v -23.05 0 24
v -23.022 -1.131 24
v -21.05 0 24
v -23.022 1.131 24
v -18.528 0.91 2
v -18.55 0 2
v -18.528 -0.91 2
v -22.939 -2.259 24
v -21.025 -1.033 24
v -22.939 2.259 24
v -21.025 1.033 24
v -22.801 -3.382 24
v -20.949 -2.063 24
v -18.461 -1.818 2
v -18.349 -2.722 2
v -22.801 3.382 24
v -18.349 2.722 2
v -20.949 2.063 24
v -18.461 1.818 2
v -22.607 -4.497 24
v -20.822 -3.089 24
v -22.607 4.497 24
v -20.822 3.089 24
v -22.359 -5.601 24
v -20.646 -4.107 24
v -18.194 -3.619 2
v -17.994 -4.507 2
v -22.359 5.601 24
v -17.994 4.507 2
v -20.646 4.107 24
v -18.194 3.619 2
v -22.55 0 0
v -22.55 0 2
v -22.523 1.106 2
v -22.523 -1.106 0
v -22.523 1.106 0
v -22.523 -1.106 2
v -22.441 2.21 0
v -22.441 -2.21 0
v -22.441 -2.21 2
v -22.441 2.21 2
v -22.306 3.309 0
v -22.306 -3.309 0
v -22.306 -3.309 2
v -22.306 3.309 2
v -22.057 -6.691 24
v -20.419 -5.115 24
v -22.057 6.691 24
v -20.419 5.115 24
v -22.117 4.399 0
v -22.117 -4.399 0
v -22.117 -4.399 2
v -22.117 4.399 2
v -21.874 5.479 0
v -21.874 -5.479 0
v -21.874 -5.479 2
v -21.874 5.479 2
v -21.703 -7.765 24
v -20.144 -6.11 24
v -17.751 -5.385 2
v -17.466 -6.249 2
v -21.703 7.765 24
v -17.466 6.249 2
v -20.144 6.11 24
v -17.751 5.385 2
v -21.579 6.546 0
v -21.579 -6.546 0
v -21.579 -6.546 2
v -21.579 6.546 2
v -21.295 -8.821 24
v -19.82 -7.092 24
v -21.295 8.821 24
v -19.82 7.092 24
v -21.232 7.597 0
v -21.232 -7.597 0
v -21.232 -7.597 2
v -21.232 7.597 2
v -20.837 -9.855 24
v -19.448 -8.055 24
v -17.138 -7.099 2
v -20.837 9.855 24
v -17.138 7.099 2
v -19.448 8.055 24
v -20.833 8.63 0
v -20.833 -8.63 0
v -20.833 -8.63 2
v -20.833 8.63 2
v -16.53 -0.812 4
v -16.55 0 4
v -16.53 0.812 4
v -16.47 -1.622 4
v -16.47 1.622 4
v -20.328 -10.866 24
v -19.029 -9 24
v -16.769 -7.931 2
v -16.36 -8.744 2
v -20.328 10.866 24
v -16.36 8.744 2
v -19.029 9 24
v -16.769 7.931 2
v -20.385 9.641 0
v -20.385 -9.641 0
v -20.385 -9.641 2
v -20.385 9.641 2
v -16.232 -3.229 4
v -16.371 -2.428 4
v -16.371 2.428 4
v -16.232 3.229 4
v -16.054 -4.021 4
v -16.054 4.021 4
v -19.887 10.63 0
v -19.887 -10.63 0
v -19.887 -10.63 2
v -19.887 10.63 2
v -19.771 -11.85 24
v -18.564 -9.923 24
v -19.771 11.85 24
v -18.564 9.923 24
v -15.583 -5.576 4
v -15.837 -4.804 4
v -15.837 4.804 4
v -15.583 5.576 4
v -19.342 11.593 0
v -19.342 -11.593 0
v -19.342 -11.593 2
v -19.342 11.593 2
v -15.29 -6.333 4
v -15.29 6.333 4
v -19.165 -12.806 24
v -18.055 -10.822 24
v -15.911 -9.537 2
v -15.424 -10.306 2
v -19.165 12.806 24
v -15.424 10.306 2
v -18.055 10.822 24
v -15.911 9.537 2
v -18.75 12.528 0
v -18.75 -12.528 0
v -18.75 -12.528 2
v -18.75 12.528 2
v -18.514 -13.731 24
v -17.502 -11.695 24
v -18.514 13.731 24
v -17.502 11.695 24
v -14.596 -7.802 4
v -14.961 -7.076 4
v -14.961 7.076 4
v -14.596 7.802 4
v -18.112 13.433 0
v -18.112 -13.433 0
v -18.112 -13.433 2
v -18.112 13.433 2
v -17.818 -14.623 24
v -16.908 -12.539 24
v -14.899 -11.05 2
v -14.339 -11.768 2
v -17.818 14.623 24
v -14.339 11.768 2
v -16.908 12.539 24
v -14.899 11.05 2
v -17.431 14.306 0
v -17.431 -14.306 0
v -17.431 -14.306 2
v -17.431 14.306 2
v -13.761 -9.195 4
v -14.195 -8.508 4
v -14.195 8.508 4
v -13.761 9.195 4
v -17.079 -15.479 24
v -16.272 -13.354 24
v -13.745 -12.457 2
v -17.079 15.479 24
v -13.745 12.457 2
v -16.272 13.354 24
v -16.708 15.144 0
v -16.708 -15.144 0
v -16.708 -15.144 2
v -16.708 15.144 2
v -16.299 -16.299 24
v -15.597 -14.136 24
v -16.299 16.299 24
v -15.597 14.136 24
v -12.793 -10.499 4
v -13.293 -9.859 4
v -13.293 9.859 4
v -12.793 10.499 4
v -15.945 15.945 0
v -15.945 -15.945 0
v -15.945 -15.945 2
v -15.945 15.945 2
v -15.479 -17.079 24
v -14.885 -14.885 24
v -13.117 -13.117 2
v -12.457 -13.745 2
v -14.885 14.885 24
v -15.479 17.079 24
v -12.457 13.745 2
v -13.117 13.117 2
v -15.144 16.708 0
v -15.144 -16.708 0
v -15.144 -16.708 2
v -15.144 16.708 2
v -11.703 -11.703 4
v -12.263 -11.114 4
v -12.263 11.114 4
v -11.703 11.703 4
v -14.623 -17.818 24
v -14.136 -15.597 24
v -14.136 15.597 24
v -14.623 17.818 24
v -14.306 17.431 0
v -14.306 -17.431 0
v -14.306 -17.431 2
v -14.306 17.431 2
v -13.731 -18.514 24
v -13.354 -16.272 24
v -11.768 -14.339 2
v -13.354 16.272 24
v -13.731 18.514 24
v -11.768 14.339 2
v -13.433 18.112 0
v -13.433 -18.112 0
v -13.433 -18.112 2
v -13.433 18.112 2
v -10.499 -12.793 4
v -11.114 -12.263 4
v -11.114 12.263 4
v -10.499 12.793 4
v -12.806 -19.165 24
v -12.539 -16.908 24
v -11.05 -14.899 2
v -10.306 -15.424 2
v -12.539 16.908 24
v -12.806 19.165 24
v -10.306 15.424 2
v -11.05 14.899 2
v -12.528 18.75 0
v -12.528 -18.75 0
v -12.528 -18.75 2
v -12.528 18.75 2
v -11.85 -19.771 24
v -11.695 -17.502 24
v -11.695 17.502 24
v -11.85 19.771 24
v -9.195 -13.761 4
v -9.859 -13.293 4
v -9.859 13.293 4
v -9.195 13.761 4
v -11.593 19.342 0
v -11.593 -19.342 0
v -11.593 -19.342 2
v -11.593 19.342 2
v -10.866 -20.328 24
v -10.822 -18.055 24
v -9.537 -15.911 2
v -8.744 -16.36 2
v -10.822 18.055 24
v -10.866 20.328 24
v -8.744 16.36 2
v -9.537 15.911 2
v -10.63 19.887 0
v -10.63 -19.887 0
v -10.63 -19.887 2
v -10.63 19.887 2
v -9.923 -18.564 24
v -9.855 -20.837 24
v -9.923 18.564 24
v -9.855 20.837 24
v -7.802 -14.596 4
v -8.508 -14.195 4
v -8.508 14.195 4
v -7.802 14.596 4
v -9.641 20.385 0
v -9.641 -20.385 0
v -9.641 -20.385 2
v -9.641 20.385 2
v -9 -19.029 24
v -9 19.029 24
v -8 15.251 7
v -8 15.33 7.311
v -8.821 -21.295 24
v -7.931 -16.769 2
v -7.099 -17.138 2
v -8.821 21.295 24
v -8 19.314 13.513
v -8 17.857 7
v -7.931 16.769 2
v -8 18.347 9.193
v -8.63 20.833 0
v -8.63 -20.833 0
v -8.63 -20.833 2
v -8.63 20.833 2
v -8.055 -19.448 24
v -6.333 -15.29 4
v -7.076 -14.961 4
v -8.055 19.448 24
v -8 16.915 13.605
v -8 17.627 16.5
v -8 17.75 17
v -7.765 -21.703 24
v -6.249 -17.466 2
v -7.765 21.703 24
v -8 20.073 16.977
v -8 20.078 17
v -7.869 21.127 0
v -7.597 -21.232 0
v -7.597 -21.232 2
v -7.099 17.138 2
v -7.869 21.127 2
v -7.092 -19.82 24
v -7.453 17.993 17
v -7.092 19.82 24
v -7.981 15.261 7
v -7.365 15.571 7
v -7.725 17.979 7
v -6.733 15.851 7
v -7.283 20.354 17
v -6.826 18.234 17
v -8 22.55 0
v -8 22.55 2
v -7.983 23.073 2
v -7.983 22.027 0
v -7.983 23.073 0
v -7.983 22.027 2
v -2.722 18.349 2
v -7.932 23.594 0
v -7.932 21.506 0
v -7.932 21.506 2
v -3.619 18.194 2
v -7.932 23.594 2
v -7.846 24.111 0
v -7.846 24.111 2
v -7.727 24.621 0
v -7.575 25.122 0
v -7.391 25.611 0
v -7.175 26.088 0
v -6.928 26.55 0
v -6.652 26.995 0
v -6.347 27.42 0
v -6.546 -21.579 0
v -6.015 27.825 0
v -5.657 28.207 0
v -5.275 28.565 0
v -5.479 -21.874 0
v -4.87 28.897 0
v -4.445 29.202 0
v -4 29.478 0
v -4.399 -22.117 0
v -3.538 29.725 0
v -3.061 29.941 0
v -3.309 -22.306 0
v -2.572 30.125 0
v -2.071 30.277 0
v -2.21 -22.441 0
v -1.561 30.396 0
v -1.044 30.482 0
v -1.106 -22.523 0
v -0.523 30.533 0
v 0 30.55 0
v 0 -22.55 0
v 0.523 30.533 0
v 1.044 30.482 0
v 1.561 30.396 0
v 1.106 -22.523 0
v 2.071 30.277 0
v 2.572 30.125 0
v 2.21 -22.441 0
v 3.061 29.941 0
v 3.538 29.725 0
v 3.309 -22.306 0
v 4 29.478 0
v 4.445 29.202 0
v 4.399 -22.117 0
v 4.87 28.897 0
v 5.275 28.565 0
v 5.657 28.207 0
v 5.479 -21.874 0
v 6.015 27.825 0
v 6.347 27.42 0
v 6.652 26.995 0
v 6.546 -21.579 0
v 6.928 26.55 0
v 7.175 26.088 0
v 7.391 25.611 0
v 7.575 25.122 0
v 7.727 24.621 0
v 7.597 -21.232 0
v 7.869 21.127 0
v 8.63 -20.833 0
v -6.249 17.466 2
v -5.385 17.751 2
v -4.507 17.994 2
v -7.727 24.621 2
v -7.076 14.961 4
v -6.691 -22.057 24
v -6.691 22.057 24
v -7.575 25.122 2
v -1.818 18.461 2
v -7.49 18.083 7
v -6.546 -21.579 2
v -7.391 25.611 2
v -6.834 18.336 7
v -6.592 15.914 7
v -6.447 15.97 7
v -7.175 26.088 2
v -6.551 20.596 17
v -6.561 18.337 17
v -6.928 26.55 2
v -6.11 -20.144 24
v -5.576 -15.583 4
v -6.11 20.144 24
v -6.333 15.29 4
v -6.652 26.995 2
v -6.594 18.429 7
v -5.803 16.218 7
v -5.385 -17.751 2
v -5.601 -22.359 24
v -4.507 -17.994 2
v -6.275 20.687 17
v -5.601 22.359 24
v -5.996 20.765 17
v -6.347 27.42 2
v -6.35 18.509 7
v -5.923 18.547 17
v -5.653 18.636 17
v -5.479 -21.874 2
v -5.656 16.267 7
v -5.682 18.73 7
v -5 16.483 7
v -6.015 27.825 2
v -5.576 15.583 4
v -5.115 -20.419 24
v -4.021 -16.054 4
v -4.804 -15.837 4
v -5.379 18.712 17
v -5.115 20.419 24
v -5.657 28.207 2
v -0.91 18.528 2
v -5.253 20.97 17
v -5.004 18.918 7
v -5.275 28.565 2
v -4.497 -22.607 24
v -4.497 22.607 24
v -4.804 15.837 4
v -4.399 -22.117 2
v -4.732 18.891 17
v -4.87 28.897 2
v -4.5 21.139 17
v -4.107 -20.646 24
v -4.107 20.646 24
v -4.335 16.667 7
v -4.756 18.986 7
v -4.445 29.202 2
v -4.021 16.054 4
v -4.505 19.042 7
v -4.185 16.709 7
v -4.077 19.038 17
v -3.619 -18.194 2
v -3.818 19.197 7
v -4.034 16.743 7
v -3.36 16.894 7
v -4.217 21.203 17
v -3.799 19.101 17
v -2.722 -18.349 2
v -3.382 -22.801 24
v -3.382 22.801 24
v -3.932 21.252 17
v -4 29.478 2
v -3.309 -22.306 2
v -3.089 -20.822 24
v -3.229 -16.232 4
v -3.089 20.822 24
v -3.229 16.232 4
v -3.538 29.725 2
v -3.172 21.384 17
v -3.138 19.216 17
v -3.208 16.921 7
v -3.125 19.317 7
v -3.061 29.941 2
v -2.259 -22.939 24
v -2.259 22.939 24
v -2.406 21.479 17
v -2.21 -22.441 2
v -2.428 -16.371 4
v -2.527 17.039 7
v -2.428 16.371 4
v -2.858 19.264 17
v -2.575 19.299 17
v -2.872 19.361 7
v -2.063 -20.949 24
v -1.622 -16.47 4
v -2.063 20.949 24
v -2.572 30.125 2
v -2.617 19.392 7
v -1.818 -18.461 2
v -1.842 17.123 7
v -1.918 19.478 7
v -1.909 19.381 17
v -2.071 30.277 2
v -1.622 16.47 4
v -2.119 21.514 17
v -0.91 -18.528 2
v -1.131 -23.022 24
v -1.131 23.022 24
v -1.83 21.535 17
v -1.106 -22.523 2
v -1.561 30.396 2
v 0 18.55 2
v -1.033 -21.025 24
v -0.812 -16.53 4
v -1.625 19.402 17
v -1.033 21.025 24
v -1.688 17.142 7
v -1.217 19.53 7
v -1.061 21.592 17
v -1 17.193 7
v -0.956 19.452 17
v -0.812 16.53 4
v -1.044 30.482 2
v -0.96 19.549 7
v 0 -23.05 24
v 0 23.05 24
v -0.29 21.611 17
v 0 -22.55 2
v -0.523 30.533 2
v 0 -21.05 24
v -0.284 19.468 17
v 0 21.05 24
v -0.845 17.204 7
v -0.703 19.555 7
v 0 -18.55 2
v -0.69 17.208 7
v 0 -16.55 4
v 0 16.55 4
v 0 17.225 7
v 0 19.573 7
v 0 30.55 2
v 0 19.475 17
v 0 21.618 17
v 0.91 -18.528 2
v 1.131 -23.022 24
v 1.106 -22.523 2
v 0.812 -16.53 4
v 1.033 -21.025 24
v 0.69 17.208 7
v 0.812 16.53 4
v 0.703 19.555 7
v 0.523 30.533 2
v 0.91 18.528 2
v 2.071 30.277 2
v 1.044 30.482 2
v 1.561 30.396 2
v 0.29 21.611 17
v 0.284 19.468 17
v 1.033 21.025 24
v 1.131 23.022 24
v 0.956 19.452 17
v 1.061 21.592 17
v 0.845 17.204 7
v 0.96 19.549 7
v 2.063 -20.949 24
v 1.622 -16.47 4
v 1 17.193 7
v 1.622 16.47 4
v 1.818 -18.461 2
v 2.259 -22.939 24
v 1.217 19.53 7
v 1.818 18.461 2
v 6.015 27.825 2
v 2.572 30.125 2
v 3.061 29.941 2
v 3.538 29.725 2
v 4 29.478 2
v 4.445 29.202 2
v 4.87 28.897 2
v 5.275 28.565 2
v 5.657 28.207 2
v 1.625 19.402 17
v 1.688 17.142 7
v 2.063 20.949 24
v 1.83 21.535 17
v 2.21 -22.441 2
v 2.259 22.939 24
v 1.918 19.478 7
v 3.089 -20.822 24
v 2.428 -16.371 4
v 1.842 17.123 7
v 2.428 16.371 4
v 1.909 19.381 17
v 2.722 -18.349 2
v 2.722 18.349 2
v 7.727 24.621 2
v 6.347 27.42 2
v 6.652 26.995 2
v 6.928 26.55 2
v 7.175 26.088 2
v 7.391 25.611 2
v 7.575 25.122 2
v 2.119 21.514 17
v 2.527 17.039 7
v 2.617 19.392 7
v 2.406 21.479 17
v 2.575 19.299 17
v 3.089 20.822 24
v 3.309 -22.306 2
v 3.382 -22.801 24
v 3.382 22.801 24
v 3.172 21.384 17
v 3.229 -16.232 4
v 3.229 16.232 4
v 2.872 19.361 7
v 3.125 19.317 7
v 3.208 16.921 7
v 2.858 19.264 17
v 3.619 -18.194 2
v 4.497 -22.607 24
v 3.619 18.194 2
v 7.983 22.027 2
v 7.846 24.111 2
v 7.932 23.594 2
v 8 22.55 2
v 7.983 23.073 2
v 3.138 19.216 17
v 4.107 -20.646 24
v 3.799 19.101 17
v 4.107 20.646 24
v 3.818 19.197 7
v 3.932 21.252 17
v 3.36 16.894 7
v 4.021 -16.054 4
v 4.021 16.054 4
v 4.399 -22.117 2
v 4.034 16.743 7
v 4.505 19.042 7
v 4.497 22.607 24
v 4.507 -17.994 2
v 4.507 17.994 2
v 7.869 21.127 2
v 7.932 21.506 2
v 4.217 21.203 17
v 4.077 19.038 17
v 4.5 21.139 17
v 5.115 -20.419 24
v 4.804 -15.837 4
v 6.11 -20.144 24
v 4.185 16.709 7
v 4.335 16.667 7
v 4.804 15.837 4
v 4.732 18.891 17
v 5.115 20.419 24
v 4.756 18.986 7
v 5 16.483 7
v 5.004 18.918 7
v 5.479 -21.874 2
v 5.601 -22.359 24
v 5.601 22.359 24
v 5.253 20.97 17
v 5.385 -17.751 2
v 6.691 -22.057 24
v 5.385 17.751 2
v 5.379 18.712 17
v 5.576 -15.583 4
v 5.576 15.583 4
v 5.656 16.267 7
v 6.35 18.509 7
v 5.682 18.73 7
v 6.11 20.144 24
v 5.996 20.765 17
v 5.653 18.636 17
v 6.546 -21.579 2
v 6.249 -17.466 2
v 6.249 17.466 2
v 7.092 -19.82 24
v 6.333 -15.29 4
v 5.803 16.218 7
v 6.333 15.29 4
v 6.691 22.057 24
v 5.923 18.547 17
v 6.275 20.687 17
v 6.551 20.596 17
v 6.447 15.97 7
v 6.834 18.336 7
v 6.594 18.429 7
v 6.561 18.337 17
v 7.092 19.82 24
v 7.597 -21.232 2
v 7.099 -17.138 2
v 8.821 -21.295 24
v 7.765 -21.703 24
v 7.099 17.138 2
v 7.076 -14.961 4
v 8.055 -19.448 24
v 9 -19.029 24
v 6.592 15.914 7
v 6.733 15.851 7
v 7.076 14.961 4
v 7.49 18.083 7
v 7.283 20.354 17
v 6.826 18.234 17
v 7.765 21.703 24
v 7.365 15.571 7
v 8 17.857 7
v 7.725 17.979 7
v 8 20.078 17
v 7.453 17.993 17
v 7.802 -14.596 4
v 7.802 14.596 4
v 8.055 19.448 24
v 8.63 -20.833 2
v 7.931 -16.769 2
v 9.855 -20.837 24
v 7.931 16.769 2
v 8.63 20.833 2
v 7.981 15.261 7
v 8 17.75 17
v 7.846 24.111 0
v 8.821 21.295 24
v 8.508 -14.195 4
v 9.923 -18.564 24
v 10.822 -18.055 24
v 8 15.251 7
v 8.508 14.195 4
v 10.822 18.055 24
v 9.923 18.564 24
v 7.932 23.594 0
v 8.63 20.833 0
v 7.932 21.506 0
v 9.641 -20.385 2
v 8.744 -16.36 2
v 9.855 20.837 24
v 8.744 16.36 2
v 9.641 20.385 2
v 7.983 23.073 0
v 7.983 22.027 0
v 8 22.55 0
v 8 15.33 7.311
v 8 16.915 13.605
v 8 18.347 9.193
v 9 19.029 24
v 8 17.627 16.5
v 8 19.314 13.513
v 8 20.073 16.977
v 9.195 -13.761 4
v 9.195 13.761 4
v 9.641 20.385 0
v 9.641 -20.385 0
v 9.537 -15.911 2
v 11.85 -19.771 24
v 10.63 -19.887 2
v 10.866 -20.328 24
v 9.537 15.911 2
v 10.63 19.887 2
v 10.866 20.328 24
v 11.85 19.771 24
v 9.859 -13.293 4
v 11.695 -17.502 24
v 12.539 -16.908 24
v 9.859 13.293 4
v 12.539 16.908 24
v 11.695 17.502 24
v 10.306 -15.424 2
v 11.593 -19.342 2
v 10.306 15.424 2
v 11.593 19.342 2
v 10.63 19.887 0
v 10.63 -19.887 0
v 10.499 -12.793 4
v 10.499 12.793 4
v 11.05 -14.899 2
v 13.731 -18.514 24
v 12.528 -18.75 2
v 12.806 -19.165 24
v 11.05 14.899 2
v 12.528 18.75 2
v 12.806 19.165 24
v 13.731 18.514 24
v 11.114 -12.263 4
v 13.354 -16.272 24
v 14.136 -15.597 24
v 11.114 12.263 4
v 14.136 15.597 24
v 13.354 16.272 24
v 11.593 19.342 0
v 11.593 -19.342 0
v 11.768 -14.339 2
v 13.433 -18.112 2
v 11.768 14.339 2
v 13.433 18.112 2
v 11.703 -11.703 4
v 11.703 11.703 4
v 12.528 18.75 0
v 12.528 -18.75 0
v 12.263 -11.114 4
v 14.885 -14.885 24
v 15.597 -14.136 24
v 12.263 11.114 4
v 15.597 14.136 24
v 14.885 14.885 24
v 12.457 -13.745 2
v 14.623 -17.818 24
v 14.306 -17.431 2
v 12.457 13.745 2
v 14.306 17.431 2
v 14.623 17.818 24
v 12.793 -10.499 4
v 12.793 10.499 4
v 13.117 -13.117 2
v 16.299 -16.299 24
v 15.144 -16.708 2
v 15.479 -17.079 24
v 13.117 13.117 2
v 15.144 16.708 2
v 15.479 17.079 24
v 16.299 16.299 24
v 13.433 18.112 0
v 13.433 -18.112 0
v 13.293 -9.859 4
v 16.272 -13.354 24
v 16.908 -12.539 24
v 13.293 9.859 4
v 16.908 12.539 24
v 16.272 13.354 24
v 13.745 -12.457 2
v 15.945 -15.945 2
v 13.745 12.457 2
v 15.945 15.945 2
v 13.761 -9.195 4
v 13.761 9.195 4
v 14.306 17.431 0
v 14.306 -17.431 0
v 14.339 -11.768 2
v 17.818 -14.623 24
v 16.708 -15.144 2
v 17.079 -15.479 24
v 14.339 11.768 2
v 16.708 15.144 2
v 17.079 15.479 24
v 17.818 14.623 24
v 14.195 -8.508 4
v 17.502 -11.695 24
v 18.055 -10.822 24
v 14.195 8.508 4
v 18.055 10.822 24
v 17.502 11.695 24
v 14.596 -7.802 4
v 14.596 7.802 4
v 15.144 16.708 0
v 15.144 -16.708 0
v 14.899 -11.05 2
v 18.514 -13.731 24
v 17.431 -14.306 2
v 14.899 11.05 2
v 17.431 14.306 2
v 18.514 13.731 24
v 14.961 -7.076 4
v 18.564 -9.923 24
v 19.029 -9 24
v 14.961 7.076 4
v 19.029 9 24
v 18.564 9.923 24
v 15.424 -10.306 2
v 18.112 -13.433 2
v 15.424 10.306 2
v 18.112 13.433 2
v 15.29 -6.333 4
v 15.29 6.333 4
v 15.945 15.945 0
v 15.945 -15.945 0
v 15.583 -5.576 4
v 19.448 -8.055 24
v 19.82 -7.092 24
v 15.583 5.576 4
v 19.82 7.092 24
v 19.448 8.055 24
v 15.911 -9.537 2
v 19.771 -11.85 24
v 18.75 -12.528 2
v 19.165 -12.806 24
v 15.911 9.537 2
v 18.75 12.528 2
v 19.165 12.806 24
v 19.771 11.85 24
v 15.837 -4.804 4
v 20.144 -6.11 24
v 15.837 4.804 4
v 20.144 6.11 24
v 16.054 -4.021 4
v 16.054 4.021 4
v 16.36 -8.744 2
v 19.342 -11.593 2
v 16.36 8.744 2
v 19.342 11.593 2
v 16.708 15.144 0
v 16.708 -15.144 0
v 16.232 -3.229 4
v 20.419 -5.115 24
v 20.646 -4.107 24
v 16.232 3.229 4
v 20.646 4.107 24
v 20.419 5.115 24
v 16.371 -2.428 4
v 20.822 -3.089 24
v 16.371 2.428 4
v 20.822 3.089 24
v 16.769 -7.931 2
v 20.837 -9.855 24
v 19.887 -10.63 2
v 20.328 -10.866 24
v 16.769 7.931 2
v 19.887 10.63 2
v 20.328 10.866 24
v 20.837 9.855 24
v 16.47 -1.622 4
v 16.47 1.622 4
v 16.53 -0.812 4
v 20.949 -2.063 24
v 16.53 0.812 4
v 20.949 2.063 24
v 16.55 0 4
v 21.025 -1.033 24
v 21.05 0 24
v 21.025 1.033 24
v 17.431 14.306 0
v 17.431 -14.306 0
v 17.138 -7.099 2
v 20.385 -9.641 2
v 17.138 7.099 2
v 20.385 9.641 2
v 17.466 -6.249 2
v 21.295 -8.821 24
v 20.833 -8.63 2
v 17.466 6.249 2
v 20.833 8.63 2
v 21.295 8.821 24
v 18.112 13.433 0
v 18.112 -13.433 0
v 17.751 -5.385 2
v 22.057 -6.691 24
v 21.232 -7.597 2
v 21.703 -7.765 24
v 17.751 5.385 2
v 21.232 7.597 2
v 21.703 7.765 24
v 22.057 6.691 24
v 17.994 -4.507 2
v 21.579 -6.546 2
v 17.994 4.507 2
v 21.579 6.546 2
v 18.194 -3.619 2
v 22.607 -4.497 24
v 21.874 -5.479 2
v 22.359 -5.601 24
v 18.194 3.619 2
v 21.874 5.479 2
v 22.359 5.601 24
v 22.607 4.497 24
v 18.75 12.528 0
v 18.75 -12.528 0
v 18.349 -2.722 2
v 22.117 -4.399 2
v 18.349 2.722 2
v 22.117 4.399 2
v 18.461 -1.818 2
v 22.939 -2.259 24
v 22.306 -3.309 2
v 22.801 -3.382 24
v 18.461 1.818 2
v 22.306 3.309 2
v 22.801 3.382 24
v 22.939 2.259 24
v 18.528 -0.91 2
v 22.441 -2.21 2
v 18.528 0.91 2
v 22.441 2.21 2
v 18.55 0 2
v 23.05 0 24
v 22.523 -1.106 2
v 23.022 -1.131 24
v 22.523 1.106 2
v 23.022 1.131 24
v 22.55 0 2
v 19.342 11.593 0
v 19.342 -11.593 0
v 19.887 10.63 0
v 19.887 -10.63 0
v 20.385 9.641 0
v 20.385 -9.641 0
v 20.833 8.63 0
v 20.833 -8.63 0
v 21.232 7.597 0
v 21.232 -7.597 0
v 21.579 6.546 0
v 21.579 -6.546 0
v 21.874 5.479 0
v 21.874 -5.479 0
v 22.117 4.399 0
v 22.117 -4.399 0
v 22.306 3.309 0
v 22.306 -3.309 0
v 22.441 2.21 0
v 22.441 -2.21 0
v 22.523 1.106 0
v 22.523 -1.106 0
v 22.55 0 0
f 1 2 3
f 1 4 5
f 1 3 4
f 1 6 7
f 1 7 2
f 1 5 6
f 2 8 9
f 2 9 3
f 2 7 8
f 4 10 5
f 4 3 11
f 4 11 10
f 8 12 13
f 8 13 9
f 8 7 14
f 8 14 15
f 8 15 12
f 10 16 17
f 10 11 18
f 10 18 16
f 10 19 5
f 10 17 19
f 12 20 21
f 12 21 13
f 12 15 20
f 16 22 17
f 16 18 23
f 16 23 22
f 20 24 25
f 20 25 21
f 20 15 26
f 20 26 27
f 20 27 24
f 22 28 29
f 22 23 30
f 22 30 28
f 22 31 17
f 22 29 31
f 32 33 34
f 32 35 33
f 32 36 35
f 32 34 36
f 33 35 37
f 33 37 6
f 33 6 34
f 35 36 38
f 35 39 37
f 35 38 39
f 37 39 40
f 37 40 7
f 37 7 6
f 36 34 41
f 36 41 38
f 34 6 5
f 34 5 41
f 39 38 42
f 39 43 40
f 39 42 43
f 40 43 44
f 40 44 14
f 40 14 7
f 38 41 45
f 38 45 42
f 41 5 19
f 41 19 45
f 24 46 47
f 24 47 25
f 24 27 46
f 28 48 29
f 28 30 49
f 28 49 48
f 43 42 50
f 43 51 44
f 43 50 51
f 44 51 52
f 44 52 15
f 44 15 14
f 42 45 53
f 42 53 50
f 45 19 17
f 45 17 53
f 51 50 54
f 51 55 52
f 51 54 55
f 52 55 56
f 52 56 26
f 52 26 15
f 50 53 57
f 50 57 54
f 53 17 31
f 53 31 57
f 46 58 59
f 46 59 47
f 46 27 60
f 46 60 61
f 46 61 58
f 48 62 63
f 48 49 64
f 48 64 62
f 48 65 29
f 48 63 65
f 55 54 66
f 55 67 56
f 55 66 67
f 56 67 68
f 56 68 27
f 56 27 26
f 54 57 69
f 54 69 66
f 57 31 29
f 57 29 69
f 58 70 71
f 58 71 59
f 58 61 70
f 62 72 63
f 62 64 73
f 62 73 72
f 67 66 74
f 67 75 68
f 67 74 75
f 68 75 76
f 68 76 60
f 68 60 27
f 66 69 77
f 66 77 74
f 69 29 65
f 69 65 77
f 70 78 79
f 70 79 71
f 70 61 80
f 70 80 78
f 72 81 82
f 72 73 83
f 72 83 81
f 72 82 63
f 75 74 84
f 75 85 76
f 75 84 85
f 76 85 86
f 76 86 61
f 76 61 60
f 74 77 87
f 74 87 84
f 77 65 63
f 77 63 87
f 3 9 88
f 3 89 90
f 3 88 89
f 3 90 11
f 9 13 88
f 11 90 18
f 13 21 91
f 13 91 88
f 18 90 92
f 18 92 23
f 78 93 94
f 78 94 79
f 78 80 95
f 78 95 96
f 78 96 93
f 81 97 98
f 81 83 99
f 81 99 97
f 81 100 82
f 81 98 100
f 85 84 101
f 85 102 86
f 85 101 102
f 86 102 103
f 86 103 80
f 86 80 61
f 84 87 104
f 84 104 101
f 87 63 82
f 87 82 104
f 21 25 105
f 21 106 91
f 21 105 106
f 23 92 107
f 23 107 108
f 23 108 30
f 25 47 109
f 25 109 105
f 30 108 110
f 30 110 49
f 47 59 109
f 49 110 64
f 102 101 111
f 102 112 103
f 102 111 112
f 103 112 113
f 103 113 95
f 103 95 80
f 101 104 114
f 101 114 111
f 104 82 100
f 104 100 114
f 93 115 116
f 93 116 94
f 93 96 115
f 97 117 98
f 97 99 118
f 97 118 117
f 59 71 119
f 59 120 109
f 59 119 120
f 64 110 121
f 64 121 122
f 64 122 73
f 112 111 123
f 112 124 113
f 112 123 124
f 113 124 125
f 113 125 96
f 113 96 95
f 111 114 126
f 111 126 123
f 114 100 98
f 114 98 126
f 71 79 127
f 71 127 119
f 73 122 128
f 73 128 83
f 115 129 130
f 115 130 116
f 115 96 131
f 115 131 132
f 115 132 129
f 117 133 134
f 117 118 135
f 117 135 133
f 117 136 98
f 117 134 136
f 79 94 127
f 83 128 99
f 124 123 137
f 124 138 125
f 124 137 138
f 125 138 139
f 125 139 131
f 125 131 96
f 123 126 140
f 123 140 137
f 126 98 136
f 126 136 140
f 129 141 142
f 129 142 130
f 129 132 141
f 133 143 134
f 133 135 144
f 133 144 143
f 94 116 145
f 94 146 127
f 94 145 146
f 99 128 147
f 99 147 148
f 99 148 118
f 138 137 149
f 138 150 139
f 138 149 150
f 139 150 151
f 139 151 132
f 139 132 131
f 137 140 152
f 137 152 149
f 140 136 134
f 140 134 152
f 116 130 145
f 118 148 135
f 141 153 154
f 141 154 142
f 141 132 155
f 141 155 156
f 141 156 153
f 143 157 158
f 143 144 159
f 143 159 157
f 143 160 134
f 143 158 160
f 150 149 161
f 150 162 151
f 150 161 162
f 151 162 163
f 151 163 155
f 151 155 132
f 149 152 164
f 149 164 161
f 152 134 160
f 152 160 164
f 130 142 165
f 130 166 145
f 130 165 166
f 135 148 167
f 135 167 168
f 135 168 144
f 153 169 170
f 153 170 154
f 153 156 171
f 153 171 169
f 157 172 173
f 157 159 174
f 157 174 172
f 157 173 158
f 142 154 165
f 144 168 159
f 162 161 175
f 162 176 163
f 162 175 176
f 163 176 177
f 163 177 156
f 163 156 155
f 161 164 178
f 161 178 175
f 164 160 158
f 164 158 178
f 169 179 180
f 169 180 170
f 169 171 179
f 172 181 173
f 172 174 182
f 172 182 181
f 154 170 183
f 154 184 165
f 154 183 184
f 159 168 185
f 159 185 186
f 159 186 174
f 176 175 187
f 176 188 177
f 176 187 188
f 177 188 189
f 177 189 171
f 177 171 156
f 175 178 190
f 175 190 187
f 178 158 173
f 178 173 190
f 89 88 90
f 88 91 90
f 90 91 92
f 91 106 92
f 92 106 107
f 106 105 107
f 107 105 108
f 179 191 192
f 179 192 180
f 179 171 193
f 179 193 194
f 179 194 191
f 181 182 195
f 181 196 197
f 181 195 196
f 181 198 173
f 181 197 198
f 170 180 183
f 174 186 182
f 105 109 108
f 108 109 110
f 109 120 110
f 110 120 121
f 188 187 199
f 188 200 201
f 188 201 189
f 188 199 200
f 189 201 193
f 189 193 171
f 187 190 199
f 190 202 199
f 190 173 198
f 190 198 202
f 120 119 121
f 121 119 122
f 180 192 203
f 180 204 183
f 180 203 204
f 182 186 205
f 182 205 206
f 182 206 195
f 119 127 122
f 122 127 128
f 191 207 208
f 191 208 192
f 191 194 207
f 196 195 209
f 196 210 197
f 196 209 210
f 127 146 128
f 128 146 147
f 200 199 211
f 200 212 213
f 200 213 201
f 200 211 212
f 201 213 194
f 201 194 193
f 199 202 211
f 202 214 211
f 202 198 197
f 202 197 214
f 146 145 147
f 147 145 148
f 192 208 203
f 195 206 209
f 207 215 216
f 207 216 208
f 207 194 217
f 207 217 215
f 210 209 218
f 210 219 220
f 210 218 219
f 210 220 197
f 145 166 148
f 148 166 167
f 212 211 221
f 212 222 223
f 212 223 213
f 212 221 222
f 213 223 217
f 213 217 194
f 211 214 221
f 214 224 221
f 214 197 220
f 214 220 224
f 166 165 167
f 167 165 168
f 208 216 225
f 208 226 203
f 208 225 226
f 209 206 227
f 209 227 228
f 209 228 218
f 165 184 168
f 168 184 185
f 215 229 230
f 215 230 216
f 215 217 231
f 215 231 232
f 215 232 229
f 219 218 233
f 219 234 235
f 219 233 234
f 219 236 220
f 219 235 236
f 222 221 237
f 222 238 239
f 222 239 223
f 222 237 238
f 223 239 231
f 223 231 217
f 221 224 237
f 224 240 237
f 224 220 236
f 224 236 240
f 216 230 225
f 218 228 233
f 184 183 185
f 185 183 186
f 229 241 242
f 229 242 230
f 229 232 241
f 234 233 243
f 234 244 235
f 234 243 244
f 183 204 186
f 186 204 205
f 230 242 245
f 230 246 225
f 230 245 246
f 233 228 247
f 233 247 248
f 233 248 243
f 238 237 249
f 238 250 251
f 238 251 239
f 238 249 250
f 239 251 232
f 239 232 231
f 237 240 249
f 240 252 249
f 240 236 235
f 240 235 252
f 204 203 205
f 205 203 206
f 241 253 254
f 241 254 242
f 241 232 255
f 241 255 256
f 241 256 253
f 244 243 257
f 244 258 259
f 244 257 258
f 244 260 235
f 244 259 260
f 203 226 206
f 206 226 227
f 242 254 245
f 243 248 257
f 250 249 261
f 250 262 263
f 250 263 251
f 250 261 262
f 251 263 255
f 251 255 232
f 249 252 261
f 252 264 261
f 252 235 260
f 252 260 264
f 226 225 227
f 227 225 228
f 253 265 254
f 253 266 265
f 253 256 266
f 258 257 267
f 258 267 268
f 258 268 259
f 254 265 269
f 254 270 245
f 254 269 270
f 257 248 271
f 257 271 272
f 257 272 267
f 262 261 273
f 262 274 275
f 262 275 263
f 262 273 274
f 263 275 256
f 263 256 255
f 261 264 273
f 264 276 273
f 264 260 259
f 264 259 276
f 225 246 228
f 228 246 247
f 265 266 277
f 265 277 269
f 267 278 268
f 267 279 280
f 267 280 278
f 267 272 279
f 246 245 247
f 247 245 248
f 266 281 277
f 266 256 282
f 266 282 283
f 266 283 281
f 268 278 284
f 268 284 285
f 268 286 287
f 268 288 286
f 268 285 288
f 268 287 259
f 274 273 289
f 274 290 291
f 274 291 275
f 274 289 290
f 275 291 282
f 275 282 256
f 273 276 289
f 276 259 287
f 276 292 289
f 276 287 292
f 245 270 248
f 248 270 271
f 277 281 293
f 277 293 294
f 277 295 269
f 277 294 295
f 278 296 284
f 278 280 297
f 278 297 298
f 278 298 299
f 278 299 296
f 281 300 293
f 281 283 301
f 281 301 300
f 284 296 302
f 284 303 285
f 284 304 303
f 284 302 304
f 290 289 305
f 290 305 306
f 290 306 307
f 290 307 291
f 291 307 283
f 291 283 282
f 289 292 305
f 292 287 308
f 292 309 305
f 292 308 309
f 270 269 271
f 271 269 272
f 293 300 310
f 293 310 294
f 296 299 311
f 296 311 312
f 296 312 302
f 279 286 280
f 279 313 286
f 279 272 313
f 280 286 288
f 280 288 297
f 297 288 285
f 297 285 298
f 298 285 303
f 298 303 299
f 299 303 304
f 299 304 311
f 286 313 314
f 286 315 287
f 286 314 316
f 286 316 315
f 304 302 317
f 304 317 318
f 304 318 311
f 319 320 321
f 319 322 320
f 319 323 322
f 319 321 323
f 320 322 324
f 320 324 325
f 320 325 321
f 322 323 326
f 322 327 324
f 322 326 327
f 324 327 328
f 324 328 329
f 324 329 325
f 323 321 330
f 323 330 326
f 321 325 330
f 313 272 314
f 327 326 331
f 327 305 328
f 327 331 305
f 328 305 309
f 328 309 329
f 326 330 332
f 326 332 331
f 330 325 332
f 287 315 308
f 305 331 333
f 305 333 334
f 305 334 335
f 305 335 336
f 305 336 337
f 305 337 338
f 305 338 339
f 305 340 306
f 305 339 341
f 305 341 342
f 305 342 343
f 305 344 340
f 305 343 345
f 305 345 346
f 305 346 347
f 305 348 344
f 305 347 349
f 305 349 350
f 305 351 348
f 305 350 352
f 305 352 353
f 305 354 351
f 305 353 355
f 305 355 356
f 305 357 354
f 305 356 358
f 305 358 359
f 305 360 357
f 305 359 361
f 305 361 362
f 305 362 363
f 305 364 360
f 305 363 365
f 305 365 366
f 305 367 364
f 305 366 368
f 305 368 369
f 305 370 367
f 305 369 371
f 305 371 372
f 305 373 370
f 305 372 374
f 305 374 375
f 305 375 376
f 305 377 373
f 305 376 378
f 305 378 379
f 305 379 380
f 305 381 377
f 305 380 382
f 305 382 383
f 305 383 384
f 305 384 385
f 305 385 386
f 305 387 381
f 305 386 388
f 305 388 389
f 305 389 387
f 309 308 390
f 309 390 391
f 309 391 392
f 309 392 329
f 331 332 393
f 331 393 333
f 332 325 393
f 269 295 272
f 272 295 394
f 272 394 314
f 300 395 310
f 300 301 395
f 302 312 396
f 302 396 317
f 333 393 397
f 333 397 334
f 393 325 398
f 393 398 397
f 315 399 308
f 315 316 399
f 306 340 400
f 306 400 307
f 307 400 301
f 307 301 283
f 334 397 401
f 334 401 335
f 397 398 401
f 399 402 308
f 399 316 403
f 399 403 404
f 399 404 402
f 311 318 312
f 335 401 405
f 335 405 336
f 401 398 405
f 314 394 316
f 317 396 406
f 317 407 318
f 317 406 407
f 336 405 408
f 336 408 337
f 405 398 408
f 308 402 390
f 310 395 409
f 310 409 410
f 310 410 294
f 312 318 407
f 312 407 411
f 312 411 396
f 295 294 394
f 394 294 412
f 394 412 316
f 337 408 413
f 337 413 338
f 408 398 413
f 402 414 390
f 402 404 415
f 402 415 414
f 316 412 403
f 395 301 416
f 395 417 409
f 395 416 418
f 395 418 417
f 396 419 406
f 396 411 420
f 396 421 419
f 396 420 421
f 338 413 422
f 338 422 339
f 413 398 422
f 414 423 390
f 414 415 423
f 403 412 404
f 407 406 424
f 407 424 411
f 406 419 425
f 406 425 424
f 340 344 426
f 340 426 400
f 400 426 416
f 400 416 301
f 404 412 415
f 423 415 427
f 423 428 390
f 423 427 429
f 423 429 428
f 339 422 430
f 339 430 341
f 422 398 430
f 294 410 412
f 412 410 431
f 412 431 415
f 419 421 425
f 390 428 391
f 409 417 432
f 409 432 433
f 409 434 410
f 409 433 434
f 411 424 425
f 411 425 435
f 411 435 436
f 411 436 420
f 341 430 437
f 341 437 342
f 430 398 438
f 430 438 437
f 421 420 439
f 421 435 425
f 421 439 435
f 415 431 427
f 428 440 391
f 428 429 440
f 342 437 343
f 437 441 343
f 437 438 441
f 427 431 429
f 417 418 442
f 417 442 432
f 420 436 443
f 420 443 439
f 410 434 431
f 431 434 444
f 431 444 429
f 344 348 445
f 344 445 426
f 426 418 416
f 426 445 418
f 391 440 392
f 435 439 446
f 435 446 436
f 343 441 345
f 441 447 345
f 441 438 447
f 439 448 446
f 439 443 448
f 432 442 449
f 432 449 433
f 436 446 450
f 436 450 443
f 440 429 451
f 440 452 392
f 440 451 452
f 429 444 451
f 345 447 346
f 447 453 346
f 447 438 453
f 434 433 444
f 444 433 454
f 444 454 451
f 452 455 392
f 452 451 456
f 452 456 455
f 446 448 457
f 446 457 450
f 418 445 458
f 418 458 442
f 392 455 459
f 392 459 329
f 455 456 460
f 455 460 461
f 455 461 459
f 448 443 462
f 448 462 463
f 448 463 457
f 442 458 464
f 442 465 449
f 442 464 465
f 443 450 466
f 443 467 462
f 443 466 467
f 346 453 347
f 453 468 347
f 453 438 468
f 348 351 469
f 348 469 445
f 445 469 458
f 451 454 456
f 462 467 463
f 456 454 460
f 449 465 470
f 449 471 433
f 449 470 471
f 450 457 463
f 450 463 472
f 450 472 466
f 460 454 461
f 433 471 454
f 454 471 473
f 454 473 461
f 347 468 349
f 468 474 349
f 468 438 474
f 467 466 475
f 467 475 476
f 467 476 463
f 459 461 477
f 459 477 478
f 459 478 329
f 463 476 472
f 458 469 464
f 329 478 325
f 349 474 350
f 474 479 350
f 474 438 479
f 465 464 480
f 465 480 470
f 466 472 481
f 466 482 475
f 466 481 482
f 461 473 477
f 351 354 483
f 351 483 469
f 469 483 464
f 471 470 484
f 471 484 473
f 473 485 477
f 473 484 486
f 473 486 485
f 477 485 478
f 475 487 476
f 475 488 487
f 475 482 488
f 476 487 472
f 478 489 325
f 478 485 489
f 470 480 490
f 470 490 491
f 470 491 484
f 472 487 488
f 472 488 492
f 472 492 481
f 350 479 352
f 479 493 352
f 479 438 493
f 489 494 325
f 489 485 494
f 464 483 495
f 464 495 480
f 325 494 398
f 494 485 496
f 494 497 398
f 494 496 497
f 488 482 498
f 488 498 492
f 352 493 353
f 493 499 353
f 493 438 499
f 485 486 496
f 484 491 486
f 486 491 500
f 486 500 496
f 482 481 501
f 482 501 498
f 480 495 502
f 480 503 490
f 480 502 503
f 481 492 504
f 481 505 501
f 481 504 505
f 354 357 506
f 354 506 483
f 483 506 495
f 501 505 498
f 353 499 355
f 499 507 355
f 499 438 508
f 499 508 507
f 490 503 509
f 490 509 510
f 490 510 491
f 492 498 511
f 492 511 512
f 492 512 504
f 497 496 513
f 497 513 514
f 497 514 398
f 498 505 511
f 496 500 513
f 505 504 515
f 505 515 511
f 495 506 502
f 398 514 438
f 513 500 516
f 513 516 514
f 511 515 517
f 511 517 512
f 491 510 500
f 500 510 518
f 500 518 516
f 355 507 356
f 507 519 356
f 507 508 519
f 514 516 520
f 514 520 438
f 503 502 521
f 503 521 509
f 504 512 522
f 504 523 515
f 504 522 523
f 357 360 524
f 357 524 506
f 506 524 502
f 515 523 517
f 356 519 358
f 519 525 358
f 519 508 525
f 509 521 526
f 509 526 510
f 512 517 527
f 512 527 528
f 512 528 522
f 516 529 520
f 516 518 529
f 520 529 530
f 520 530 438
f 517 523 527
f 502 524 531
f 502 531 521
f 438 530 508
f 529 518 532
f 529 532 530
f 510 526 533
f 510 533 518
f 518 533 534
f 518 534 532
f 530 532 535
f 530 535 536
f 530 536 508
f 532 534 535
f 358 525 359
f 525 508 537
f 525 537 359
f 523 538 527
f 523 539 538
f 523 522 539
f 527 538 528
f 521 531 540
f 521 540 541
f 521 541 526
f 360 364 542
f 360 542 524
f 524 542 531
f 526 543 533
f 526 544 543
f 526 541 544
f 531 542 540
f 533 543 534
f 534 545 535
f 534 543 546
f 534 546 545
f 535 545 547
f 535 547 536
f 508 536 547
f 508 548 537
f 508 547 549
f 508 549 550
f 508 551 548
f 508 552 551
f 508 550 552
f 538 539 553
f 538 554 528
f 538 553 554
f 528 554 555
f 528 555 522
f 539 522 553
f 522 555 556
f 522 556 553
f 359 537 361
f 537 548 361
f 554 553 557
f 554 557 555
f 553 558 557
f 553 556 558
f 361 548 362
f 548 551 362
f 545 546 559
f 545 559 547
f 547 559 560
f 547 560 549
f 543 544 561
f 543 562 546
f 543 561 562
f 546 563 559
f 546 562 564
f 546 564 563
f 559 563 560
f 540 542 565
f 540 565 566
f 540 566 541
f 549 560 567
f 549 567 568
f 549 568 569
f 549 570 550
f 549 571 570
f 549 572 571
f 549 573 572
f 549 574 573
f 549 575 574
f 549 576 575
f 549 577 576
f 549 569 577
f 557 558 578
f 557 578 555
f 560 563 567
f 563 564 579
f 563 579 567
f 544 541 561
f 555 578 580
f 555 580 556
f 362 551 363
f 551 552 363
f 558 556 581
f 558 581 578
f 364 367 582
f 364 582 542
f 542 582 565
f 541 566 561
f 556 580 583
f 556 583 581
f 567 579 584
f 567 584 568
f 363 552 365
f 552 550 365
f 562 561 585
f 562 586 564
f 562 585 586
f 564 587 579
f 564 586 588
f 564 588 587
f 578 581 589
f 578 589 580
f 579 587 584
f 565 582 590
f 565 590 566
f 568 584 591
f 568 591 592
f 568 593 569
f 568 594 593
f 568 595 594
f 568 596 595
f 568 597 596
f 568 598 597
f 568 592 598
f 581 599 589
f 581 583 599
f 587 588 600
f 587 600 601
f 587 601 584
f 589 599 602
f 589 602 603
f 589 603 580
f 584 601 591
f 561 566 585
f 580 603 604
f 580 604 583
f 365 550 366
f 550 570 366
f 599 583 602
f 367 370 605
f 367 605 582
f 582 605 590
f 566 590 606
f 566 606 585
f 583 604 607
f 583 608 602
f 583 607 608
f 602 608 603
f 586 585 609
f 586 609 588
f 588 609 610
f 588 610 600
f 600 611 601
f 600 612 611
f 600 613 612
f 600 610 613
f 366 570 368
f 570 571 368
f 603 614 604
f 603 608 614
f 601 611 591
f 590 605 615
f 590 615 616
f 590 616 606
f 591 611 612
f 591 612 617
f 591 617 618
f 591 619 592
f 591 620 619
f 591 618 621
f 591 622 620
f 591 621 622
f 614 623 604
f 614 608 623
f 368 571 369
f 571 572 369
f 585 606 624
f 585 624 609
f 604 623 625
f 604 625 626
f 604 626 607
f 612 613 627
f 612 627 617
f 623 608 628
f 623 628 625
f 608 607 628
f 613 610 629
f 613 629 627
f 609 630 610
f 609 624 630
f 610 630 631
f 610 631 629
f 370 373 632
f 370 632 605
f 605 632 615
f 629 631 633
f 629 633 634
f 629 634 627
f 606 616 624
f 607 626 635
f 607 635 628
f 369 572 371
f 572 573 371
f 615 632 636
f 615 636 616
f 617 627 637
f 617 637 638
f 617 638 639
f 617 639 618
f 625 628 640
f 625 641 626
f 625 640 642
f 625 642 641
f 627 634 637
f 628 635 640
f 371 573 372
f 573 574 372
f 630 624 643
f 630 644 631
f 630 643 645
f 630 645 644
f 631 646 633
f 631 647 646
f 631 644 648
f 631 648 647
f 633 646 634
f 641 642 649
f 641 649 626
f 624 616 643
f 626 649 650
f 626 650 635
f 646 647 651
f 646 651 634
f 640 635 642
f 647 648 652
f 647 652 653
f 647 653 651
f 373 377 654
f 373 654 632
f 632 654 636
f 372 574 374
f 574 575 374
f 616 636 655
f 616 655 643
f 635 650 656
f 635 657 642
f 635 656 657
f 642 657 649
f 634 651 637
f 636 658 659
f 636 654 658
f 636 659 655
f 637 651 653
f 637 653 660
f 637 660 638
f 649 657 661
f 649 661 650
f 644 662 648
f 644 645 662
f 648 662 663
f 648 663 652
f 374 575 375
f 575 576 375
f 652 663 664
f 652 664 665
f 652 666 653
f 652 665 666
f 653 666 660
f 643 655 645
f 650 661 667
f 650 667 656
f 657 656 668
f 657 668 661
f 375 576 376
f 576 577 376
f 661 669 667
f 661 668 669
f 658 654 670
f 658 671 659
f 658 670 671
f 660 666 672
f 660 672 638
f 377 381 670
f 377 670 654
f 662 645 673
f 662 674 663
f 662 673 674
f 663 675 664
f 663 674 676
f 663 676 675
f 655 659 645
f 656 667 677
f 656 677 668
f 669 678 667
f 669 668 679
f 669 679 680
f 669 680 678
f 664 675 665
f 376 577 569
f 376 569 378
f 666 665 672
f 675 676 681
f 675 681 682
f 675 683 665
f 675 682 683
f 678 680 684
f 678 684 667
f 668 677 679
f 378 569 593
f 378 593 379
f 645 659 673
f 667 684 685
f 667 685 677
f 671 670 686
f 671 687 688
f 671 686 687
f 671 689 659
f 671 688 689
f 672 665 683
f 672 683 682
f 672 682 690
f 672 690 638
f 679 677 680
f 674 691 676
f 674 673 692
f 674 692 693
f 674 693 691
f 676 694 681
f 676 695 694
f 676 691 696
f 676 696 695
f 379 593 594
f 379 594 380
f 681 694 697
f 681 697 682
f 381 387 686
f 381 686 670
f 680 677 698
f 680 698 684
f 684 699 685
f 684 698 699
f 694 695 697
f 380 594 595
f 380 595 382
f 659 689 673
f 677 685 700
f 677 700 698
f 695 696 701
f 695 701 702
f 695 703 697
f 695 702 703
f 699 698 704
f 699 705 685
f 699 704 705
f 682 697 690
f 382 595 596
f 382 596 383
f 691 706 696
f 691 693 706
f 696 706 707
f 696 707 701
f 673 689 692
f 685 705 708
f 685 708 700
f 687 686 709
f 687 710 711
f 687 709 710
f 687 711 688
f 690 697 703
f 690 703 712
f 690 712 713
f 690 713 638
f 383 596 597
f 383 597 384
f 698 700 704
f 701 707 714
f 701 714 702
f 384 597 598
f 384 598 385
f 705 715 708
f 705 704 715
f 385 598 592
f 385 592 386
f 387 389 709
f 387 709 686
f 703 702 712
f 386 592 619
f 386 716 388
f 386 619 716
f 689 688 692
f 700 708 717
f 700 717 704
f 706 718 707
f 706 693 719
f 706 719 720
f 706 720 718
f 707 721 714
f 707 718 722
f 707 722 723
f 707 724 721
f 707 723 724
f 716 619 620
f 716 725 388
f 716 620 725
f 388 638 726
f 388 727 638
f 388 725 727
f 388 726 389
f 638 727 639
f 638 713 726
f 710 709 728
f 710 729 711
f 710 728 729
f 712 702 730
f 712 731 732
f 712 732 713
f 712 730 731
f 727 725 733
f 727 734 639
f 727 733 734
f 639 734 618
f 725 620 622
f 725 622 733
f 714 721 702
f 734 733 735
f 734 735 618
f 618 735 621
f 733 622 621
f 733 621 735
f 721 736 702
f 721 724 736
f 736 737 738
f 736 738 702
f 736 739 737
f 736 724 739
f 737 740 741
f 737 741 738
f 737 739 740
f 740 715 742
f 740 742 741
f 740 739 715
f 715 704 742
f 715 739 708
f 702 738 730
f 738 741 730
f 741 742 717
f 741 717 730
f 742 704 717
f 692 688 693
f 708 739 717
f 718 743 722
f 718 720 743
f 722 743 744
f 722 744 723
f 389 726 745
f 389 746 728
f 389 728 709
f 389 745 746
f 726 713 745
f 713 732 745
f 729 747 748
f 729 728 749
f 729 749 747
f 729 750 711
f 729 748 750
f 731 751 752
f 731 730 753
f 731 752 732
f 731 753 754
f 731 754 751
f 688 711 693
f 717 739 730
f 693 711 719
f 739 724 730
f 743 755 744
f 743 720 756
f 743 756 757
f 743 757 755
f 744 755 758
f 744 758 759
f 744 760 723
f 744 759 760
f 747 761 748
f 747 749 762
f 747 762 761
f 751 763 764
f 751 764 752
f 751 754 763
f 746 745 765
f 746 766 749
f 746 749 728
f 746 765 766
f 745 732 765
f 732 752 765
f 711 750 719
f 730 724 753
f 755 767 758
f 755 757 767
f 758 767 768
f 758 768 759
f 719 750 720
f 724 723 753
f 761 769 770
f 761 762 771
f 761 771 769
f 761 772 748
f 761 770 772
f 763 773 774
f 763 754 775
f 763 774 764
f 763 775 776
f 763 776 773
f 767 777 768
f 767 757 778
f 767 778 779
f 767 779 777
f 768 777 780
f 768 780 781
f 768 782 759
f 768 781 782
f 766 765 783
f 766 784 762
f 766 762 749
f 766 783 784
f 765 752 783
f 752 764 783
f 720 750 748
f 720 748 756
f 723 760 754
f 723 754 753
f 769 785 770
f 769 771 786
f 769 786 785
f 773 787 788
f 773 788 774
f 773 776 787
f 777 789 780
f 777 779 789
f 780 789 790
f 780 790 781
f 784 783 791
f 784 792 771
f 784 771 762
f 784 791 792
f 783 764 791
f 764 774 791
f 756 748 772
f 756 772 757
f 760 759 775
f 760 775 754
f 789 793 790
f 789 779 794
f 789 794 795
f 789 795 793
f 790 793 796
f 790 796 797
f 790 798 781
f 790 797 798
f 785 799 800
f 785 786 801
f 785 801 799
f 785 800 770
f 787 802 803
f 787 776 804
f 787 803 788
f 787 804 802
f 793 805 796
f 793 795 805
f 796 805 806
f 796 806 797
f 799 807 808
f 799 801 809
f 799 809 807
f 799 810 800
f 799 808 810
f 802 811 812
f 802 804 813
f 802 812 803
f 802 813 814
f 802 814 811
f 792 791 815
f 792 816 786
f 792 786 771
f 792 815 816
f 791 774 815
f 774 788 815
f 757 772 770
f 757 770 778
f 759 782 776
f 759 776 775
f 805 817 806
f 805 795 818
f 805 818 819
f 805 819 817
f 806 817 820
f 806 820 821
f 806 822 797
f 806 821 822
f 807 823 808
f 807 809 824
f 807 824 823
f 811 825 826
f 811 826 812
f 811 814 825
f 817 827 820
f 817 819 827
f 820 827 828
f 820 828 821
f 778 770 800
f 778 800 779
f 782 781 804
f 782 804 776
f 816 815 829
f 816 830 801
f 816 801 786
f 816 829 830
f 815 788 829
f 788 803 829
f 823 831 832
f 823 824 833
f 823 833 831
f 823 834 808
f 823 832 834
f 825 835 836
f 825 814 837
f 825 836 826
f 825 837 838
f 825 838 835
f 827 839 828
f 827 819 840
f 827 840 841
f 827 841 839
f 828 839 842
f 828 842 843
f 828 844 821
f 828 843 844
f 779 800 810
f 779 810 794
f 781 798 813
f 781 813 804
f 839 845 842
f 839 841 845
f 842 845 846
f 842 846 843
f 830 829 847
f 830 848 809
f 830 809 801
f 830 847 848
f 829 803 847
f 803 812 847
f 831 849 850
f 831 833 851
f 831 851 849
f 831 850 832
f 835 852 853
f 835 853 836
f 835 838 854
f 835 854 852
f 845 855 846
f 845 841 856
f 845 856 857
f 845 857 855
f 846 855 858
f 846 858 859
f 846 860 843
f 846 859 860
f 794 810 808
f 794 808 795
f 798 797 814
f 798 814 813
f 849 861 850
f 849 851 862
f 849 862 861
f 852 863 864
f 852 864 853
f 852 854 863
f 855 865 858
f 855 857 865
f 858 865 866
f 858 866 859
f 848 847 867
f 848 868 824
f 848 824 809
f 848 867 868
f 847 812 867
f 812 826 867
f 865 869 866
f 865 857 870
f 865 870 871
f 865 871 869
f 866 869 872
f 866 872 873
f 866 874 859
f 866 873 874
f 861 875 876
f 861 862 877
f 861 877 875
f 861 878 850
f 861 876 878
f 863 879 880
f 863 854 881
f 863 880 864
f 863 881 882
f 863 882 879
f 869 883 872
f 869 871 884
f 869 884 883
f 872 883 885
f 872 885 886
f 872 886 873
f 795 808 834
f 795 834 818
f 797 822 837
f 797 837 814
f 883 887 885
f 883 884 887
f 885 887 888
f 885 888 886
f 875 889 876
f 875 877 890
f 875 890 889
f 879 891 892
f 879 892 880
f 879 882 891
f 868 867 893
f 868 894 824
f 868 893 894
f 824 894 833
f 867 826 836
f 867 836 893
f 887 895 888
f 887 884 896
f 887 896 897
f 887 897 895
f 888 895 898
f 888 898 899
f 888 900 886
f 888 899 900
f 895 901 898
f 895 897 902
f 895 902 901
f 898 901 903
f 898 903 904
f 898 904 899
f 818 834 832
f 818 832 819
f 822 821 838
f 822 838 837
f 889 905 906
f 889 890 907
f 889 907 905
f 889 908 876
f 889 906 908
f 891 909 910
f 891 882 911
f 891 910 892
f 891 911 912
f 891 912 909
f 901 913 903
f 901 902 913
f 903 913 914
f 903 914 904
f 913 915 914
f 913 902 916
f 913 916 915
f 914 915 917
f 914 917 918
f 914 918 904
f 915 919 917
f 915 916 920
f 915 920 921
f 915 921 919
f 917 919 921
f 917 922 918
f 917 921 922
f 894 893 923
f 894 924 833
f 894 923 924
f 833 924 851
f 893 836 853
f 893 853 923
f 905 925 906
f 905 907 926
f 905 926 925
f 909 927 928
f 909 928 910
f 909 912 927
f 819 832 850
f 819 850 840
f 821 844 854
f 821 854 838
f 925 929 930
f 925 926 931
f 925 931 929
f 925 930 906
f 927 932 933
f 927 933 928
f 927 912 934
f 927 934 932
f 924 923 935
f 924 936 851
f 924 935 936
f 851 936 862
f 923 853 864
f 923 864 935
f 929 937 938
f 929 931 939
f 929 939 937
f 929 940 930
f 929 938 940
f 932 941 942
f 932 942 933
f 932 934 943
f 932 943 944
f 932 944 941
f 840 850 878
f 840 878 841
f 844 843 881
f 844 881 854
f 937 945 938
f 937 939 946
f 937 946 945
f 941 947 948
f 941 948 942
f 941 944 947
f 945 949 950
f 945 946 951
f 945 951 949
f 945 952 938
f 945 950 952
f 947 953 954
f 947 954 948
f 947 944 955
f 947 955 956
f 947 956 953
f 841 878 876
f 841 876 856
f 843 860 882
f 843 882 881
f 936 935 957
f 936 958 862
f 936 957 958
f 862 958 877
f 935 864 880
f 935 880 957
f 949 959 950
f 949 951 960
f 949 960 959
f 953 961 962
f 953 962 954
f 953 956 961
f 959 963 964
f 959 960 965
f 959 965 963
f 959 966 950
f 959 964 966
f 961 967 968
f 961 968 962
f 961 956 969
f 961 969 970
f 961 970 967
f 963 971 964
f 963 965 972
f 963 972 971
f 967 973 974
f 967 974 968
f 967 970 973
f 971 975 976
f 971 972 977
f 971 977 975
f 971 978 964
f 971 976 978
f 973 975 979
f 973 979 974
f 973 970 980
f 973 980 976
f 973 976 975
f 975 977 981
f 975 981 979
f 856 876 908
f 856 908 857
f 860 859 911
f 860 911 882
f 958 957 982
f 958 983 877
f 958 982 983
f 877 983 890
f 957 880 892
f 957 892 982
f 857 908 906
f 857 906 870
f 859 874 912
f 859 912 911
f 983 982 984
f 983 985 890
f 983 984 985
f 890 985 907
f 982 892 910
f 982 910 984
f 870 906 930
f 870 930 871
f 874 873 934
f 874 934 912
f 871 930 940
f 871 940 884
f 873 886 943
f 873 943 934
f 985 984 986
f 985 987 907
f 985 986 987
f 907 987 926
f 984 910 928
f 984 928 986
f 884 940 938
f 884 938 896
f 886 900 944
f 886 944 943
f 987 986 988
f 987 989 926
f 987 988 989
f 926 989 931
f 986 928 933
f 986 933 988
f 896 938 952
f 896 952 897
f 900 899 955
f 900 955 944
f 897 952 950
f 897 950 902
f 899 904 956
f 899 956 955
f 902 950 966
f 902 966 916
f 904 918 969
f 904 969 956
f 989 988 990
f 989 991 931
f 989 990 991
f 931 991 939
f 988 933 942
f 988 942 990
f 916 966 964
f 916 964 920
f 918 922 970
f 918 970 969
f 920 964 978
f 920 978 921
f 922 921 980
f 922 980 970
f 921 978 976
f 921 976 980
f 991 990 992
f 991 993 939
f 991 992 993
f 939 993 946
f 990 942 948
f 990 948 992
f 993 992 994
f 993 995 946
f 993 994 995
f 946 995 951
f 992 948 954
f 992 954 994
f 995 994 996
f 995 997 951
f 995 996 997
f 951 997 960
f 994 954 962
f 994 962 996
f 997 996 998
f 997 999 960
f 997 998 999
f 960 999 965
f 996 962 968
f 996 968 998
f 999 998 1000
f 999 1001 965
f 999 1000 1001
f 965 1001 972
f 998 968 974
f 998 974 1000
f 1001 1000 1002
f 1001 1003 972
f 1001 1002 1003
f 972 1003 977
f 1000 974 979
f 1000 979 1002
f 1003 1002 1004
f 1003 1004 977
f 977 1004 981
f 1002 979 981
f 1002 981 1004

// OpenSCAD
//
// Boompods Zero – Cup Holder (Frustum interior + USB port raised 5mm)
//

// -------------------------
// Speaker shape
// -------------------------
speaker_d_bottom = 31.7;    // diameter at the base of the speaker
speaker_d_mid    = 40.7;    // diameter halfway up (max width)
cup_height       = 22;      // wall height (~half the speaker height)

// Clearance for easy insertion/removal
clearance        = 0.7;

// Wall + base
wall_thickness   = 2.0;
base_thickness   = 2.0;

// Base plate dimensions
base_radius_extra = 4;
base_tab_y_extra  = 8;

// USB port window
port_width  = 16;
port_height = 10;   // thickness of opening
port_bottom_offset = 5;  // NEW: hole starts 5mm above the inner floor

// -------------------------

module boompod_cup() {

    // Inner radii (speaker shape)
    inner_r_bottom = speaker_d_bottom/2 + clearance;
    inner_r_top    = speaker_d_mid/2    + clearance;

    // Outer radii (constant wall thickness)
    outer_r_bottom = inner_r_bottom + wall_thickness;
    outer_r_top    = inner_r_top    + wall_thickness;

    // Base disk radius
    base_r = outer_r_bottom + base_radius_extra;

    difference() {
        union() {

            //-----------------------------
            // Base plate: circle + front tab
            //-----------------------------
            union() {
                cylinder(h = base_thickness, r = base_r, $fn=128);

                translate([0, base_r, 0])
                    cylinder(h = base_thickness, r = base_tab_y_extra, $fn=96);
            }

            //-----------------------------
            // Cup walls (frustum outer + frustum inner)
            //-----------------------------
            translate([0,0,base_thickness])
            difference() {

                // Outer frustum
                cylinder(
                    h = cup_height,
                    r1 = outer_r_bottom,
                    r2 = outer_r_top,
                    $fn=128
                );

                // Hollow interior frustum
                translate([0,0,wall_thickness])
                cylinder(
                    h = cup_height - wall_thickness,
                    r1 = inner_r_bottom,
                    r2 = inner_r_top,
                    $fn=128
                );
            }
        }

        //-----------------------------
        // USB cutout – raised 5mm above inner floor
        //-----------------------------
        translate([
            0,
            outer_r_top - wall_thickness/2,         // centered inside wall thickness
            base_thickness + port_bottom_offset + port_height/2
        ])
            cube([
                port_width,
                outer_r_top + 6,                    // extends fully through wall
                port_height
            ], center=true);
    }
}

boompod_cup();
